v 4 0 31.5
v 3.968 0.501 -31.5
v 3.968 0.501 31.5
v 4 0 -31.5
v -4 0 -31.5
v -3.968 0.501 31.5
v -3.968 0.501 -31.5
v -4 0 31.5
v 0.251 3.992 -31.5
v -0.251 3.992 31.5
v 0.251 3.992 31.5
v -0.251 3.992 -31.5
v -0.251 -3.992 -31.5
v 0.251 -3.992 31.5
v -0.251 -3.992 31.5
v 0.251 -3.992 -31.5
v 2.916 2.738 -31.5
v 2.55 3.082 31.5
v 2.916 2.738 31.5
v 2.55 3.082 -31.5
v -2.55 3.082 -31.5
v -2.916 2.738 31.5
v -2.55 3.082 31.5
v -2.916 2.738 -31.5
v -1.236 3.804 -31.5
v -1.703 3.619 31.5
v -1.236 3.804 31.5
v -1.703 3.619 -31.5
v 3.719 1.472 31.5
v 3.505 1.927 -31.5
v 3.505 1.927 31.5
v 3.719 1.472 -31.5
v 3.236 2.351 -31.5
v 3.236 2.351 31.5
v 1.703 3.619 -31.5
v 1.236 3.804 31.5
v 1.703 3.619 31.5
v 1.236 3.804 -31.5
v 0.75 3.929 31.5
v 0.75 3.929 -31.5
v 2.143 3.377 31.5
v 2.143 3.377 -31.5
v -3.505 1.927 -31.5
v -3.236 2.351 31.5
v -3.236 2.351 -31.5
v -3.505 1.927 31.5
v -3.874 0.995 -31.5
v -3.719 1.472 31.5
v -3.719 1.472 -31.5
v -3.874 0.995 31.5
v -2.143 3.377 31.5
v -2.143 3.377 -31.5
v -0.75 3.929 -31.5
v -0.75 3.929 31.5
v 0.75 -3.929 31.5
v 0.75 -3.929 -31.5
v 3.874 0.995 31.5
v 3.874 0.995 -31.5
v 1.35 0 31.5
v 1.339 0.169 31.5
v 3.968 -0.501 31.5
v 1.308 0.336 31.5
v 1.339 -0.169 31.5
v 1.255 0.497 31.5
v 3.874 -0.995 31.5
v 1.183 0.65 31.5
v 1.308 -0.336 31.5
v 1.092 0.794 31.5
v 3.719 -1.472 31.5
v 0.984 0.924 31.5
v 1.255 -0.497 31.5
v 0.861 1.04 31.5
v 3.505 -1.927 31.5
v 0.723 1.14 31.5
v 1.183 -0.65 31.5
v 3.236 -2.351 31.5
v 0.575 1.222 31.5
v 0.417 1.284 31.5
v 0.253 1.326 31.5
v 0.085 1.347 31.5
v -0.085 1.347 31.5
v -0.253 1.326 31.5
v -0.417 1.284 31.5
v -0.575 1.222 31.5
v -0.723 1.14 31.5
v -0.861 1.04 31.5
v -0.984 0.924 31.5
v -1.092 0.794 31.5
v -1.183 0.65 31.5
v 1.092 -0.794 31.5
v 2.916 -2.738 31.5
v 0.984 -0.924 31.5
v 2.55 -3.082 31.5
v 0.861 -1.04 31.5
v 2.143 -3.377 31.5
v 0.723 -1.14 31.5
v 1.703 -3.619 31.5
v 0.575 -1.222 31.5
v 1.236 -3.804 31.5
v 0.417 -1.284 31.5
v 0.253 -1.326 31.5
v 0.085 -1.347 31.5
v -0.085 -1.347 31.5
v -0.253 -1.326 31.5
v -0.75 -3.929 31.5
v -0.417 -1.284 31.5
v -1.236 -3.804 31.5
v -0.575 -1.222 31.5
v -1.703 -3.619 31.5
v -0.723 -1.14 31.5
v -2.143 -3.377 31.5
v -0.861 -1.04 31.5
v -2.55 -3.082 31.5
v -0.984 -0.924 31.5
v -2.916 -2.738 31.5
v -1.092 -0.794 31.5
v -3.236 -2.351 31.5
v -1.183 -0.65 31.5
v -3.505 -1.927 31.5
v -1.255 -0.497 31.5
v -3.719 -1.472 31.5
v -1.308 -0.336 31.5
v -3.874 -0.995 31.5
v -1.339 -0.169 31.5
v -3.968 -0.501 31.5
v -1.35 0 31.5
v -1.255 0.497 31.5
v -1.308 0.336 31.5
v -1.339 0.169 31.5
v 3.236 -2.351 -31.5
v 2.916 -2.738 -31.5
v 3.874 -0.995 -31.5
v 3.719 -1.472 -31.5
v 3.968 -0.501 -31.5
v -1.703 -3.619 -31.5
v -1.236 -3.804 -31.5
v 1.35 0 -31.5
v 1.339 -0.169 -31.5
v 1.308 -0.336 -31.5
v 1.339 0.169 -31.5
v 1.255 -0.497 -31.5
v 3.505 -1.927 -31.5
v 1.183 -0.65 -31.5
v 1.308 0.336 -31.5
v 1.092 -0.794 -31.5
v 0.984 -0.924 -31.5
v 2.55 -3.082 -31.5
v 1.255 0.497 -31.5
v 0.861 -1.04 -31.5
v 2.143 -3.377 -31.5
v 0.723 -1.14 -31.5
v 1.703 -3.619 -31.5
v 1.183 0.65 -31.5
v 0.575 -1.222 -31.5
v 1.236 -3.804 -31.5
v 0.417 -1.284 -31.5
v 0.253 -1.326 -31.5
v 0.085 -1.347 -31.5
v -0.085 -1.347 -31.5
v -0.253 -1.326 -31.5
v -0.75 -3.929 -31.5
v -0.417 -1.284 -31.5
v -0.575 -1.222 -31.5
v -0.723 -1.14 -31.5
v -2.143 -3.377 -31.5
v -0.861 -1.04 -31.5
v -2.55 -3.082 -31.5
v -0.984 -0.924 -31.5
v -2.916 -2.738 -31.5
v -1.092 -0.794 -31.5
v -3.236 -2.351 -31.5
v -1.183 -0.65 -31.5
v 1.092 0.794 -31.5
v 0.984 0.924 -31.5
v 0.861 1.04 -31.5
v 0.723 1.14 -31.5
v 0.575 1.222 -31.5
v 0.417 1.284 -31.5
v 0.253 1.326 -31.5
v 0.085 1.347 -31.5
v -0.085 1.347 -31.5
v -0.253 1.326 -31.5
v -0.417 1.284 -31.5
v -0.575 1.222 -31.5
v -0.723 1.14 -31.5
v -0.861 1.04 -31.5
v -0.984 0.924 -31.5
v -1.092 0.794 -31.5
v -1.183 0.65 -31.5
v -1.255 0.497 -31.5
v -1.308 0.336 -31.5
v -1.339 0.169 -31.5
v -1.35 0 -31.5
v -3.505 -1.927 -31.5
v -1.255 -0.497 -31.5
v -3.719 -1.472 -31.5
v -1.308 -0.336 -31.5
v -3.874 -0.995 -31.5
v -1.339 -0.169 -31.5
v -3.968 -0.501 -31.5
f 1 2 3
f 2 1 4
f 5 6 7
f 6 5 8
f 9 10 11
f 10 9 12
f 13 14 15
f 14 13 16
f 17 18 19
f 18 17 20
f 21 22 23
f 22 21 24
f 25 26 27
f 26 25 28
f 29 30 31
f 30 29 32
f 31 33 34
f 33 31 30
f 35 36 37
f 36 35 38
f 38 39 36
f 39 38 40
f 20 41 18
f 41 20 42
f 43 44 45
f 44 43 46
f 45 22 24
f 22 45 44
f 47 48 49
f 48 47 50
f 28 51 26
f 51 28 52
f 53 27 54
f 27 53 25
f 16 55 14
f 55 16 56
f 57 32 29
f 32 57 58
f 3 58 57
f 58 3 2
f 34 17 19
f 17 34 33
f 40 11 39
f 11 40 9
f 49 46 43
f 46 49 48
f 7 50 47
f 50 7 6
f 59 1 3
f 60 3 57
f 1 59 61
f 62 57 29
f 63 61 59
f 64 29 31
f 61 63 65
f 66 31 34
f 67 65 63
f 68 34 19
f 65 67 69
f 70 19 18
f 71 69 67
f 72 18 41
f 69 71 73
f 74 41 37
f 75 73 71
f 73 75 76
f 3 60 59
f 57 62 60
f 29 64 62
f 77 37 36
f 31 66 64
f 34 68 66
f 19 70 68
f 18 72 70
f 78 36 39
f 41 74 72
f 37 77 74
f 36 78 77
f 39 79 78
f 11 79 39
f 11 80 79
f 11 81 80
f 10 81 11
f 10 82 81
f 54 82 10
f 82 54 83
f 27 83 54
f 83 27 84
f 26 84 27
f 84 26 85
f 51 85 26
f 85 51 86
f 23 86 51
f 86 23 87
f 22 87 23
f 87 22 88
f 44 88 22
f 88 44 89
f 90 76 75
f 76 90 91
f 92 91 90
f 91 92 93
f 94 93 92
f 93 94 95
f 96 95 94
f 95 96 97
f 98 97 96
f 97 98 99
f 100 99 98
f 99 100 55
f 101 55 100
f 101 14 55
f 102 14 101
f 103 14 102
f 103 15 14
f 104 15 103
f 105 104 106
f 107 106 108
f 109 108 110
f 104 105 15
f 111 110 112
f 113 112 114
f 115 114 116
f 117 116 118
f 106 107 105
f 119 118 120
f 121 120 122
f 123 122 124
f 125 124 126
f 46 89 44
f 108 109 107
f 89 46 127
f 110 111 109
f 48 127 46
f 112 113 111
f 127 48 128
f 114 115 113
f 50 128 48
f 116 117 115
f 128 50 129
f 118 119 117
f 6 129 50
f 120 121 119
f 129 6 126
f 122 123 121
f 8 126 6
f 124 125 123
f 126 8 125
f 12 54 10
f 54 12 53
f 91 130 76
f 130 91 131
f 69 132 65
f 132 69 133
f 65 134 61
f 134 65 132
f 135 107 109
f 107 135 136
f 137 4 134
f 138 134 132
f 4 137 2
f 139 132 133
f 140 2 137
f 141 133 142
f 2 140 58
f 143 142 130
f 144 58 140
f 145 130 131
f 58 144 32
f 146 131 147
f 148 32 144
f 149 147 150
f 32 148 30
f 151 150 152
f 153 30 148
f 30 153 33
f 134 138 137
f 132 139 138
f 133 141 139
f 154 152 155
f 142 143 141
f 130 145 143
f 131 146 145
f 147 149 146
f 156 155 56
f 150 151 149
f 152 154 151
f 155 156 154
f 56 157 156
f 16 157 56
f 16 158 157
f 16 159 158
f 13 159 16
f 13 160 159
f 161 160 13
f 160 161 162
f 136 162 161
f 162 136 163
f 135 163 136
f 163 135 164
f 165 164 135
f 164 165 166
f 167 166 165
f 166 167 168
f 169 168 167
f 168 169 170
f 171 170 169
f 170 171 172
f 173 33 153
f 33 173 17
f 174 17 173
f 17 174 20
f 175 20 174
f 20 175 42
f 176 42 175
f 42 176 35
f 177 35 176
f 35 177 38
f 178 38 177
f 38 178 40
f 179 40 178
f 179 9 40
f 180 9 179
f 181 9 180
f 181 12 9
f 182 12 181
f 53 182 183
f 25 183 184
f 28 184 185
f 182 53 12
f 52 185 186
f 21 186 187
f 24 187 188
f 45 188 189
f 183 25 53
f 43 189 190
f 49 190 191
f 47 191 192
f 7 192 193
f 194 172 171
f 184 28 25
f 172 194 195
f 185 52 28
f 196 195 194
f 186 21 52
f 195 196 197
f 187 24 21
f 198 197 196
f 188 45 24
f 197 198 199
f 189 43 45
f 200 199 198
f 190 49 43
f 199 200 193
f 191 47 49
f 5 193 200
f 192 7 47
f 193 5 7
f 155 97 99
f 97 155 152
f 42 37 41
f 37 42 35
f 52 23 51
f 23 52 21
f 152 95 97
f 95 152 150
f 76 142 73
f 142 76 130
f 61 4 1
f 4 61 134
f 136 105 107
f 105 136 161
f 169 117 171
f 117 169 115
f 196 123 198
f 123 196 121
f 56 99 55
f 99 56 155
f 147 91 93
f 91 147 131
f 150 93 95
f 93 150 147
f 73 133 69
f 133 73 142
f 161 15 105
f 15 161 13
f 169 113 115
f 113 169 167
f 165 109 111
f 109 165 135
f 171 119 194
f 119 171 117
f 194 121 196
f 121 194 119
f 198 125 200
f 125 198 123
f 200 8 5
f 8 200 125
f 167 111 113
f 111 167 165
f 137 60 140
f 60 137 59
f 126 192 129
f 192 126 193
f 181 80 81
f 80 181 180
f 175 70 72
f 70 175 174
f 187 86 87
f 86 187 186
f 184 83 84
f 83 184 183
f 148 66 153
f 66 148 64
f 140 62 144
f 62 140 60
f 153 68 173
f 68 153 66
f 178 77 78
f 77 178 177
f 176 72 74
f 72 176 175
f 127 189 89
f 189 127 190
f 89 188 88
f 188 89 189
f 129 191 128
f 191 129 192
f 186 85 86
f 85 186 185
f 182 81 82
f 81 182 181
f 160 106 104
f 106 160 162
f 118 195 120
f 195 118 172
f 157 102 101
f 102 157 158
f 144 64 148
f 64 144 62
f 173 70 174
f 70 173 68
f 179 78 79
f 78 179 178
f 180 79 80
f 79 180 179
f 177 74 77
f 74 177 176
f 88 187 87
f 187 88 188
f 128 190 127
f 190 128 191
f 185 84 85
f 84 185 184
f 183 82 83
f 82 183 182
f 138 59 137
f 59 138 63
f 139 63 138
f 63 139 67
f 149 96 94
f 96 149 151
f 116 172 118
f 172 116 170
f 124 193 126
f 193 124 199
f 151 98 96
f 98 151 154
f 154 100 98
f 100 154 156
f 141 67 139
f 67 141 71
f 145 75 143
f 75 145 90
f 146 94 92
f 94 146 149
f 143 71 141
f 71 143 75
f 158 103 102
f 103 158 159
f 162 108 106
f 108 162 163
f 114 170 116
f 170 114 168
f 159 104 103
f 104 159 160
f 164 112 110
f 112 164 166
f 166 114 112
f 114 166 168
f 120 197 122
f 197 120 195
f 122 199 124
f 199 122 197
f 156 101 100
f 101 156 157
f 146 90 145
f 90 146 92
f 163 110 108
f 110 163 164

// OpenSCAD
$fn = 50;


difference() {
	union() {
		translate(v = [0, 0, -31.5000000000]) {
			cylinder(h = 63, r = 4.0000000000);
		}
	}
	union() {
		translate(v = [0, 0, -100.0000000000]) {
			cylinder(h = 200, r = 1.3500000000);
		}
	}
}
